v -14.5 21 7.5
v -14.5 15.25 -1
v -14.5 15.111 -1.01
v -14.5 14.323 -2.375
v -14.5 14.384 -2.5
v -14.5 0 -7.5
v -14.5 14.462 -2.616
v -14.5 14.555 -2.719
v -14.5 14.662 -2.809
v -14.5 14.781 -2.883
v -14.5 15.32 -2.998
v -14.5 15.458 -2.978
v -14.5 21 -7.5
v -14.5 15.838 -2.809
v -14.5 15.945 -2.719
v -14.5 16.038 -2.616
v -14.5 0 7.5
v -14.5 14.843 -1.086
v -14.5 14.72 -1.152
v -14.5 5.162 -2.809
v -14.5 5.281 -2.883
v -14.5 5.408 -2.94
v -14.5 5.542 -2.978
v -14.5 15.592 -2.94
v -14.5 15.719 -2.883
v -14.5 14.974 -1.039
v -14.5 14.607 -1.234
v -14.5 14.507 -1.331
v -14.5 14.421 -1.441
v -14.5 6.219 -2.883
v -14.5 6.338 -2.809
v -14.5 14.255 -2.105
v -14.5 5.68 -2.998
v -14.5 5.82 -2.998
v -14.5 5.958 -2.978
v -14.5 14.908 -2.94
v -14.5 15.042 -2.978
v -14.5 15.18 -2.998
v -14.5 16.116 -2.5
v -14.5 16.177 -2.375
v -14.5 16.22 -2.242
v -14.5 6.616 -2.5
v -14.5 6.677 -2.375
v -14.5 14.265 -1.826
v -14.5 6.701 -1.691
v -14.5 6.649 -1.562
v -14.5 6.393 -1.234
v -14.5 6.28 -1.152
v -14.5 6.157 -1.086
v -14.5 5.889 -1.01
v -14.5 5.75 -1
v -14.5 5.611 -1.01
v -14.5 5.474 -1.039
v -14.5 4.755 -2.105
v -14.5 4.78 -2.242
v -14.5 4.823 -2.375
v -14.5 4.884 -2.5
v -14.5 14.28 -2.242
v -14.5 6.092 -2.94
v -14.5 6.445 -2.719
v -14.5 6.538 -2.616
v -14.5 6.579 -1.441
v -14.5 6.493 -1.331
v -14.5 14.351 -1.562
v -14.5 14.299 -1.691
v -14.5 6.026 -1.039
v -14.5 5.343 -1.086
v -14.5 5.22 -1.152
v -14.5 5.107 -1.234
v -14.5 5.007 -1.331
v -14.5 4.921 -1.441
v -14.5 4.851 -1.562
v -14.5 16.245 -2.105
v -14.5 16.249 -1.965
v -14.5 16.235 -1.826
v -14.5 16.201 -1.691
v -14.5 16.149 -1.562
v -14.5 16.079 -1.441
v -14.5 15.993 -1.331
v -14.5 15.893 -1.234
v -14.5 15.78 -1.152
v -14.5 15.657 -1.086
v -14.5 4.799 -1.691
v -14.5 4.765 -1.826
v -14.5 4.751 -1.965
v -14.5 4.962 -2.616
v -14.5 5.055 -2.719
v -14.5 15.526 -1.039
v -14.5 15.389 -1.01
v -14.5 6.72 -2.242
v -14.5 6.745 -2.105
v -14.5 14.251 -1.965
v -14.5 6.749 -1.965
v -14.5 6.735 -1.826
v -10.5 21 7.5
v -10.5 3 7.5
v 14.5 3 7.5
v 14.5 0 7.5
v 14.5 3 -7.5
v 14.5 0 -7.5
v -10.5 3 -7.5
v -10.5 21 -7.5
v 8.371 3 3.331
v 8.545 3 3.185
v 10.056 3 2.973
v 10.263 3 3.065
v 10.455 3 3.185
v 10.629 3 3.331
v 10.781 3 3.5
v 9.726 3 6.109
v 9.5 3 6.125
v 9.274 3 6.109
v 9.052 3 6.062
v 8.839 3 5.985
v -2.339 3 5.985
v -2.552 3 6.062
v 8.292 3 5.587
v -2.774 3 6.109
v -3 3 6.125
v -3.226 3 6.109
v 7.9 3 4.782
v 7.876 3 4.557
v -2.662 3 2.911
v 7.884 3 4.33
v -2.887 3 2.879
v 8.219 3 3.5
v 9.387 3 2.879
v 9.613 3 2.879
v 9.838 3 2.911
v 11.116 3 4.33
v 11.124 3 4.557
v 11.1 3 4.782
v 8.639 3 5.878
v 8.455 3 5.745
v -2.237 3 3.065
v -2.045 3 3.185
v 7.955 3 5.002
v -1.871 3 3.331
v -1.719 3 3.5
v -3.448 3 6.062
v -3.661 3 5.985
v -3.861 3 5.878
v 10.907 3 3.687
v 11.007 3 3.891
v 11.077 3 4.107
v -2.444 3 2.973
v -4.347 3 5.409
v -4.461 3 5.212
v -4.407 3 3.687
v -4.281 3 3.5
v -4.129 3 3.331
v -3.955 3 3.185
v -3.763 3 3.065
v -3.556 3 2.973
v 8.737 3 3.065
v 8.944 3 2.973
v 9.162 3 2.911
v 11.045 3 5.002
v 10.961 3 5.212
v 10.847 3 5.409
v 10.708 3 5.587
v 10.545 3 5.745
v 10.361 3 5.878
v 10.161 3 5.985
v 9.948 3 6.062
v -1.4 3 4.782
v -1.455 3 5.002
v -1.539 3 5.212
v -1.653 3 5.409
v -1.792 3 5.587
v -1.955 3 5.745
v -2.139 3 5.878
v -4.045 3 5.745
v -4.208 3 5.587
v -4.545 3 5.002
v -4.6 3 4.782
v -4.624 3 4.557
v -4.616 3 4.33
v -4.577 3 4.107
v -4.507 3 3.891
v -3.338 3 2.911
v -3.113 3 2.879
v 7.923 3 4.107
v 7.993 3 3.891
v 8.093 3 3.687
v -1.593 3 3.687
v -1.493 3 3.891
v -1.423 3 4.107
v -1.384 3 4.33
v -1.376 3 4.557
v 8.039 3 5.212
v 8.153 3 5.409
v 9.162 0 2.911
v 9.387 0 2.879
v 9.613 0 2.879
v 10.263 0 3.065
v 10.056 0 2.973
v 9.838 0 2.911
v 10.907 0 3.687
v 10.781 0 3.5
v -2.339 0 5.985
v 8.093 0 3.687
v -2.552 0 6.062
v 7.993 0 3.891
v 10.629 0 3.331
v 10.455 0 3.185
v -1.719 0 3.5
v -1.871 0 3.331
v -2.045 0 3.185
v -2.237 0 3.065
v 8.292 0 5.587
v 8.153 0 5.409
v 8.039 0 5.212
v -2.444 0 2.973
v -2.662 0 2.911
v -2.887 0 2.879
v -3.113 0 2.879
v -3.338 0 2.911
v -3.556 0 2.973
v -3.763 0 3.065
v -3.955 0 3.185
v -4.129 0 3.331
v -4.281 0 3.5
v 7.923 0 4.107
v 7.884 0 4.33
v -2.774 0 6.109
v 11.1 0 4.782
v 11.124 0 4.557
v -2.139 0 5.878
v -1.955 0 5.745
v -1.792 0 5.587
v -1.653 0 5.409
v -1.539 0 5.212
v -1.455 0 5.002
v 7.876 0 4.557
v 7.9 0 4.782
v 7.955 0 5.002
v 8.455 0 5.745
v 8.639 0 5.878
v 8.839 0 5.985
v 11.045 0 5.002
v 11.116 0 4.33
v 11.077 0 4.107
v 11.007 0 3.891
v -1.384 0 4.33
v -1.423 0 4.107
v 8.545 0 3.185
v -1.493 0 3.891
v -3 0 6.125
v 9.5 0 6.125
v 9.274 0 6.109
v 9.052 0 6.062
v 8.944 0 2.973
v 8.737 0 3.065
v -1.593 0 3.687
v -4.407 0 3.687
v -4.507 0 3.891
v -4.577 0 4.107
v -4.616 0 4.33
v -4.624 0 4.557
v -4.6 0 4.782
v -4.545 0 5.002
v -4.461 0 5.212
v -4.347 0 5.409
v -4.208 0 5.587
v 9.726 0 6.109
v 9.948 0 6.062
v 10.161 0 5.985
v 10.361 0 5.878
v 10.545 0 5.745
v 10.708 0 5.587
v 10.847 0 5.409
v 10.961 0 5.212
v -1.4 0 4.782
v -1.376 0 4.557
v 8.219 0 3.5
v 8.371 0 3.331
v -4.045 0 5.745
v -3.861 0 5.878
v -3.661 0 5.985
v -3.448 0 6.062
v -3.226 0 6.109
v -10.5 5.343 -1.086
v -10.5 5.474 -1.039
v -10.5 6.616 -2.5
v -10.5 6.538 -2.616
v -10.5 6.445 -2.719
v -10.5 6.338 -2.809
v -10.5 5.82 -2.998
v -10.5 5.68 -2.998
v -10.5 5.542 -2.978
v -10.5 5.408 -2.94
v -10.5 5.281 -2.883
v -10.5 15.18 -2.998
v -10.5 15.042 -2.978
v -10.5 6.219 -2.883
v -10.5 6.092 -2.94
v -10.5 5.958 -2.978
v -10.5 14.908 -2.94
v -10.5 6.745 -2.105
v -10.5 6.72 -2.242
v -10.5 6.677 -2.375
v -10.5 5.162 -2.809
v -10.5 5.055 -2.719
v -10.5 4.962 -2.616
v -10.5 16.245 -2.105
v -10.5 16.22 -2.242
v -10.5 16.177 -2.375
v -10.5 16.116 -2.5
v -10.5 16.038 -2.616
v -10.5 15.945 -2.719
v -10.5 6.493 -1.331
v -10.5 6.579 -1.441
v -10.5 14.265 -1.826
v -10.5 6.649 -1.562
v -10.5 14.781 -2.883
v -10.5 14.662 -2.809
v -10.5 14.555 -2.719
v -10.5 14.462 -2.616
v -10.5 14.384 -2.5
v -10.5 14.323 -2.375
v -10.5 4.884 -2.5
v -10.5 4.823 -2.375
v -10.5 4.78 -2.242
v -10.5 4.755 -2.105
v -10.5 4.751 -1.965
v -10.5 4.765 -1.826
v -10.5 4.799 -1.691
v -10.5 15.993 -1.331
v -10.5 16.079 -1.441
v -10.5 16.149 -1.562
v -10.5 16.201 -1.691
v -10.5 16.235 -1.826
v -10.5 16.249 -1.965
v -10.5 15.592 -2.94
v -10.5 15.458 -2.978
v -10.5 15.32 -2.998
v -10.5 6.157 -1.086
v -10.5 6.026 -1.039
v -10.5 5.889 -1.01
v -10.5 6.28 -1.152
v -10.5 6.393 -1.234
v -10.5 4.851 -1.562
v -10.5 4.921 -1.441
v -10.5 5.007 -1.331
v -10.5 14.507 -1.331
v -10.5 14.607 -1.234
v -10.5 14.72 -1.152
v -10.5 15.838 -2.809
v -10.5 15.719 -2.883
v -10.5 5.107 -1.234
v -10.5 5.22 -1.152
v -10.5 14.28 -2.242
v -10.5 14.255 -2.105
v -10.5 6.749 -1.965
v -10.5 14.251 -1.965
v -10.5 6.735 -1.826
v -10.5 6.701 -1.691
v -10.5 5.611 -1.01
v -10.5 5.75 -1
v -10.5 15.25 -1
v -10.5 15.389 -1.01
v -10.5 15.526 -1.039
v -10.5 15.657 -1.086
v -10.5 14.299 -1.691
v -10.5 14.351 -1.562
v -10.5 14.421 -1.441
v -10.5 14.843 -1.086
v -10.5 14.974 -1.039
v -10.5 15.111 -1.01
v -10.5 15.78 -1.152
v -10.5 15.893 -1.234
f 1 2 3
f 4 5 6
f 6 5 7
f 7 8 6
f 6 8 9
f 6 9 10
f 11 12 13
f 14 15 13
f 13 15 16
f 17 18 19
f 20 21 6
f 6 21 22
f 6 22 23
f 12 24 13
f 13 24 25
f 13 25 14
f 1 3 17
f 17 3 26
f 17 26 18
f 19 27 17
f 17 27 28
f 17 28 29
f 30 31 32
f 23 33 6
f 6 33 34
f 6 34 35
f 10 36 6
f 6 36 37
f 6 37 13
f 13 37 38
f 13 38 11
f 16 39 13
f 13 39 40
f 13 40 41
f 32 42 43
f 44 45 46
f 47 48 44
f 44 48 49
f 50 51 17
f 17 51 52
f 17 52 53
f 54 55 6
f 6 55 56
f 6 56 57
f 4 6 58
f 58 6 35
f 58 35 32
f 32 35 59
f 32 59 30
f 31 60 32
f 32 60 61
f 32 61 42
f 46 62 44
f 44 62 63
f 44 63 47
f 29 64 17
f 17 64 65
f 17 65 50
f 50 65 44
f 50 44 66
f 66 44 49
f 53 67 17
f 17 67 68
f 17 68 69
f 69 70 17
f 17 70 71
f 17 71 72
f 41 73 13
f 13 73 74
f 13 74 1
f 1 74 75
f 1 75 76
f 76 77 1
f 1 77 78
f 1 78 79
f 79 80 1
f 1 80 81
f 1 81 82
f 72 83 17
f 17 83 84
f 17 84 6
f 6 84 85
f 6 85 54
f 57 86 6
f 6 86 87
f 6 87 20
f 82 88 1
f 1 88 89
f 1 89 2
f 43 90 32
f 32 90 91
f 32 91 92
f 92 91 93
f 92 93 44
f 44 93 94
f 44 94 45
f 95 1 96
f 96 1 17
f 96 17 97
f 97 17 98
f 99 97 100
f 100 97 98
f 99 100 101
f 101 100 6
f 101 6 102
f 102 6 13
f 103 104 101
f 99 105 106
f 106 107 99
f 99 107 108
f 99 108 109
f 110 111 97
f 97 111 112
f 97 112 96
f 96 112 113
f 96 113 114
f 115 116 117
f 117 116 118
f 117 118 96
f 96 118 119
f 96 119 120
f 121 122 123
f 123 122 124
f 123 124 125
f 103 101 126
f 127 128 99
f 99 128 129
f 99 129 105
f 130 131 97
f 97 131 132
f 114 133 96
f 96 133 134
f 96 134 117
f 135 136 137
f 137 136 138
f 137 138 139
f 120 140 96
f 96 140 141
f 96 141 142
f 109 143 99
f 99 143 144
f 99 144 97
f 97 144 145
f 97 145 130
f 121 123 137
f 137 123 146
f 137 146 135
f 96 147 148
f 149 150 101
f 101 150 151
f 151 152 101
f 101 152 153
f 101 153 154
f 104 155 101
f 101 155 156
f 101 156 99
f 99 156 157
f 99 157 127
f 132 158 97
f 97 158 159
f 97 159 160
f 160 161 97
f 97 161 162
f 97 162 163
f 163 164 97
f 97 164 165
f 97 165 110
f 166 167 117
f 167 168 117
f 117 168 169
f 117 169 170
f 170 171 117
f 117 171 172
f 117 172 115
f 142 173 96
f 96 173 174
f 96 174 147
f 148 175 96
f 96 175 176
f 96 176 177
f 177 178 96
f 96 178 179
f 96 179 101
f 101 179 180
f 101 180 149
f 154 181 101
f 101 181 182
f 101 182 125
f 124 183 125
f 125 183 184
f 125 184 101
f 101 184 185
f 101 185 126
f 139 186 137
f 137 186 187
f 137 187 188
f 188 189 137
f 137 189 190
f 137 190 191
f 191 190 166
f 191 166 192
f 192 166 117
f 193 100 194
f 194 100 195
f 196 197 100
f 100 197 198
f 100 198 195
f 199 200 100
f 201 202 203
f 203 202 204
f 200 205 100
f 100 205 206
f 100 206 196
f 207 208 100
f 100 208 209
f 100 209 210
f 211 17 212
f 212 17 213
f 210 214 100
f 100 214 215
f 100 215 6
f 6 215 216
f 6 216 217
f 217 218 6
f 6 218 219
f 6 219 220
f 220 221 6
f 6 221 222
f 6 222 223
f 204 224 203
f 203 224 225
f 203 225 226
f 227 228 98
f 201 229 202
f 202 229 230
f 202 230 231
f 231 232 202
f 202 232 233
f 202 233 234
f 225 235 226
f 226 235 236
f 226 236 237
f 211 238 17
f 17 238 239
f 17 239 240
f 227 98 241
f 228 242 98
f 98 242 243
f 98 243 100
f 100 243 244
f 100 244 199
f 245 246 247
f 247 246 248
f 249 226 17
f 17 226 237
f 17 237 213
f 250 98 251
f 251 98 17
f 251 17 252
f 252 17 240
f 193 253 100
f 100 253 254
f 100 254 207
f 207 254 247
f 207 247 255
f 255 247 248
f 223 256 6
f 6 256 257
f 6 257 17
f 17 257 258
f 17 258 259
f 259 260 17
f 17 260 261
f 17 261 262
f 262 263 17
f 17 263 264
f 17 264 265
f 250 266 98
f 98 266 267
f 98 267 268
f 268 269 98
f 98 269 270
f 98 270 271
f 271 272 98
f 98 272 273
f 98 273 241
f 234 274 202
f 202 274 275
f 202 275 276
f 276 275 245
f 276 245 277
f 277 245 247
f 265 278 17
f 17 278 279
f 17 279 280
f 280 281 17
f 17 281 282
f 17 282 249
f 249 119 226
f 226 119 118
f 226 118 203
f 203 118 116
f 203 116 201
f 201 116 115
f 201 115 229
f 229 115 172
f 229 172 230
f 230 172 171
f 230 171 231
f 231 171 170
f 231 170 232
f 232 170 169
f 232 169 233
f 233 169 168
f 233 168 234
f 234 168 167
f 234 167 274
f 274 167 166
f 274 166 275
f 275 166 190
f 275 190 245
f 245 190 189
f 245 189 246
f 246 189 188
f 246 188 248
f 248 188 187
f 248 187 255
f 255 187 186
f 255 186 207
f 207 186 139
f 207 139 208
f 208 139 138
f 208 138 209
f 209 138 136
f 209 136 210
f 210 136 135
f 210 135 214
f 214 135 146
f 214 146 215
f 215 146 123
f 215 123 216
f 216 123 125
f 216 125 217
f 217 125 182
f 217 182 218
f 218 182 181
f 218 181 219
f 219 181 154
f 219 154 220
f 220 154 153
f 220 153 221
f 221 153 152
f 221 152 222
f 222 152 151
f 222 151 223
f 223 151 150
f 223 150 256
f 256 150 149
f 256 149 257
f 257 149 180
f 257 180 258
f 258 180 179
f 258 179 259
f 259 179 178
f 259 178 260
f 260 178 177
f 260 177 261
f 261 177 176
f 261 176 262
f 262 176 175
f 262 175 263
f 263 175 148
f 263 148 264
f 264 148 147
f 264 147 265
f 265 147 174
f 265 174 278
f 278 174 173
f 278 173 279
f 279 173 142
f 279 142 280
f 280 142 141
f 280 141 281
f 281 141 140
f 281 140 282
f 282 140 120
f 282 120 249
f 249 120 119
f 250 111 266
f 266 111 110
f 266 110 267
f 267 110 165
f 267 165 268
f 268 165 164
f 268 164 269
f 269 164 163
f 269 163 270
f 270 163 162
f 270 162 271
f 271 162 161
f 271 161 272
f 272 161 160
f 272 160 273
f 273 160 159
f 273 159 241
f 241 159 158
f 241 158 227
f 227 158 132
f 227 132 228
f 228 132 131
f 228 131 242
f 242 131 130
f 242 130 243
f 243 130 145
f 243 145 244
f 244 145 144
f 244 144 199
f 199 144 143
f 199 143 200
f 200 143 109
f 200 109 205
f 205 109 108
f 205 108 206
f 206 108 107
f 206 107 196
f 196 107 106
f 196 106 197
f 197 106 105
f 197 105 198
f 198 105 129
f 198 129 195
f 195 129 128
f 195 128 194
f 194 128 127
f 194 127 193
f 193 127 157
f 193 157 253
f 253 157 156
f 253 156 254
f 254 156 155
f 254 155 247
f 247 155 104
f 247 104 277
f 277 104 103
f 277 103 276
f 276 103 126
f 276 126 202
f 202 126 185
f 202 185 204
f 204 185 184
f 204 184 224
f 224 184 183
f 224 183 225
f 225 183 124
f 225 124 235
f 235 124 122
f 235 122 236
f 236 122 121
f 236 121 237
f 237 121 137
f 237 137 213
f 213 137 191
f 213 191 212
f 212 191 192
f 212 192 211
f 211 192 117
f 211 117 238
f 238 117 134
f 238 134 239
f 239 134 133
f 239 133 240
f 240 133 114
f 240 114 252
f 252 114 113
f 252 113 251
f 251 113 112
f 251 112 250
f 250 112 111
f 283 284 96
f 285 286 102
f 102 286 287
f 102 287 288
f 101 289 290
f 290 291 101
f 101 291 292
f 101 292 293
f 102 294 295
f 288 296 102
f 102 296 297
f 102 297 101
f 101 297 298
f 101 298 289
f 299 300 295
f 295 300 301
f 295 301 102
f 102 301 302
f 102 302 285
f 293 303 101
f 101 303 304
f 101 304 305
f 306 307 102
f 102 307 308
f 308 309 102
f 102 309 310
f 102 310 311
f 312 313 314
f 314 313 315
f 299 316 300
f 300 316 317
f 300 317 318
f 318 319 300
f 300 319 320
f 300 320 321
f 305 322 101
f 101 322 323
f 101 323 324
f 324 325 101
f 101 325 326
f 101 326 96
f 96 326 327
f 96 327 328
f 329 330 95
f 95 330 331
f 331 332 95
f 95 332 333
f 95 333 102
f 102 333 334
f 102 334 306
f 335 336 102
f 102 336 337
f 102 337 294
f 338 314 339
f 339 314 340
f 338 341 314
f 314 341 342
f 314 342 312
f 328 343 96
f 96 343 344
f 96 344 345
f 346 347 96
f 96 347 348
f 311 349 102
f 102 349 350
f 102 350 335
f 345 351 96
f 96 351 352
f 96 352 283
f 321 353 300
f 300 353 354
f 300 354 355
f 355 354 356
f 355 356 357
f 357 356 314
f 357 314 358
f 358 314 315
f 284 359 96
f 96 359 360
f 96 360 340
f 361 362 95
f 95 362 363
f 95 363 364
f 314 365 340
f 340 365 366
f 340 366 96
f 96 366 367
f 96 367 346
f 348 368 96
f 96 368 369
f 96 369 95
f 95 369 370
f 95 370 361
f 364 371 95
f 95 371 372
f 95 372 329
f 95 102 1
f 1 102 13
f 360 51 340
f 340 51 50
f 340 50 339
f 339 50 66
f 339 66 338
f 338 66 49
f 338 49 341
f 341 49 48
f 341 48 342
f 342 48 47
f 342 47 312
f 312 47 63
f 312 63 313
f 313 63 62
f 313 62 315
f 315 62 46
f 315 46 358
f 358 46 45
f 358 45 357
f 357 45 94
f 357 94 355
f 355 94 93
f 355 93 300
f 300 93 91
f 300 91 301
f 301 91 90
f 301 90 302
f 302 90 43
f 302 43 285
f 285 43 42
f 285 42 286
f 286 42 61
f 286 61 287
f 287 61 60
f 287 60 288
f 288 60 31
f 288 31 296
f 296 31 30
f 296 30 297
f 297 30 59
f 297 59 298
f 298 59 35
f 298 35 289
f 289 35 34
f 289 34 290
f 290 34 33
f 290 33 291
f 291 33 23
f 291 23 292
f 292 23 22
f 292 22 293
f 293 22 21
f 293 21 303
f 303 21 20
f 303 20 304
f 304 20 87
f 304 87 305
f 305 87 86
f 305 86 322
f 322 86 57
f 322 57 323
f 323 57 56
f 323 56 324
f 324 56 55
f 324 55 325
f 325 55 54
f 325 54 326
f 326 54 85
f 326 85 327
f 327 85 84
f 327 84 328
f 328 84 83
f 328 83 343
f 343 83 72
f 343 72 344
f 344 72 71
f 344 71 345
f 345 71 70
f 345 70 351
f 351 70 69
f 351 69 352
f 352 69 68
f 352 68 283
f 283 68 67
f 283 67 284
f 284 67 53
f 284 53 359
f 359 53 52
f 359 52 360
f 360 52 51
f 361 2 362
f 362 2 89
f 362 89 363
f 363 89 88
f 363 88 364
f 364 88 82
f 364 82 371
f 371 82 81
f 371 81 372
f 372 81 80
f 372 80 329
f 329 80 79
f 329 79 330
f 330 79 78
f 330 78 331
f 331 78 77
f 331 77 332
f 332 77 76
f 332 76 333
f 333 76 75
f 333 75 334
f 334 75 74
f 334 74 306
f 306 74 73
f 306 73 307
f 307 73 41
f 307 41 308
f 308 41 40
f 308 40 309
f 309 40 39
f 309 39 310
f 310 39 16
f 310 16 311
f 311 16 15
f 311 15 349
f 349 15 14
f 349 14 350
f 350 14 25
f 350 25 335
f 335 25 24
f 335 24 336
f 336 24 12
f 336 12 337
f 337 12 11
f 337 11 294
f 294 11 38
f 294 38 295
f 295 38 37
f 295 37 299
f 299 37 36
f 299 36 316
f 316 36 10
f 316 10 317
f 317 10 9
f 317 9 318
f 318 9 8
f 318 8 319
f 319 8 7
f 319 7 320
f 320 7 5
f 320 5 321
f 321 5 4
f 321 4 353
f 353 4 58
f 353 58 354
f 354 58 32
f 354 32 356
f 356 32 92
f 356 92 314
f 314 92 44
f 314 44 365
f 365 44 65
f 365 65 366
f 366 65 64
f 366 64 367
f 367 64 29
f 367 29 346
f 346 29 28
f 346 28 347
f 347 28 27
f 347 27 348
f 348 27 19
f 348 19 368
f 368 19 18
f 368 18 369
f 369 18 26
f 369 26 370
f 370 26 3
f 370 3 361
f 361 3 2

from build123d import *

# Parameters (mm, degrees)
SKETCH1_W           = 29
SKETCH1_H           = 15
BOSS_EXTRUDE1_DEPTH = 3
SKETCH3_R           = 1.625
CUT_EXTRUDE2_DEPTH  = 4
SKETCH4_W           = 4
SKETCH4_H           = 15
BOSS_EXTRUDE2_DEPTH = 18
SKETCH5_R           = 1
CUT_EXTRUDE3_DEPTH  = 13


with BuildPart() as part:
    # Sketch1 → Boss-Extrude1 (new body)
    with BuildSketch(Plane(origin=(0, 0, 0), x_dir=(1, 0, 0), z_dir=(0, 1, 0))):
        Rectangle(SKETCH1_W, SKETCH1_H)
    extrude(amount=BOSS_EXTRUDE1_DEPTH)

    # Sketch3 → Cut-Extrude2 (cut, through all)
    with BuildSketch(Plane(origin=(0, 3, 0), x_dir=(1, 0, 0), z_dir=(0, 1, 0))):
        with Locations((-3, -4.5)):
            Circle(SKETCH3_R)
        with Locations((9.5, -4.5)):
            Circle(SKETCH3_R)
    extrude(amount=-CUT_EXTRUDE2_DEPTH, mode=Mode.SUBTRACT)

    # Sketch4 → Boss-Extrude2 (add)
    with BuildSketch(Plane(origin=(0, 3, 0), x_dir=(1, 0, 0), z_dir=(0, 1, 0))):
        with Locations((-12.5, 0)):
            Rectangle(SKETCH4_W, SKETCH4_H)
    extrude(amount=BOSS_EXTRUDE2_DEPTH)

    # Sketch5 → Cut-Extrude3 (cut)
    with BuildSketch(Plane.ZY.offset(14.5)):
        with Locations((-2, 15.25)):
            Circle(SKETCH5_R)
        with Locations((-2, 5.75)):
            Circle(SKETCH5_R)
    extrude(amount=-CUT_EXTRUDE3_DEPTH, mode=Mode.SUBTRACT)


solid = part.part
